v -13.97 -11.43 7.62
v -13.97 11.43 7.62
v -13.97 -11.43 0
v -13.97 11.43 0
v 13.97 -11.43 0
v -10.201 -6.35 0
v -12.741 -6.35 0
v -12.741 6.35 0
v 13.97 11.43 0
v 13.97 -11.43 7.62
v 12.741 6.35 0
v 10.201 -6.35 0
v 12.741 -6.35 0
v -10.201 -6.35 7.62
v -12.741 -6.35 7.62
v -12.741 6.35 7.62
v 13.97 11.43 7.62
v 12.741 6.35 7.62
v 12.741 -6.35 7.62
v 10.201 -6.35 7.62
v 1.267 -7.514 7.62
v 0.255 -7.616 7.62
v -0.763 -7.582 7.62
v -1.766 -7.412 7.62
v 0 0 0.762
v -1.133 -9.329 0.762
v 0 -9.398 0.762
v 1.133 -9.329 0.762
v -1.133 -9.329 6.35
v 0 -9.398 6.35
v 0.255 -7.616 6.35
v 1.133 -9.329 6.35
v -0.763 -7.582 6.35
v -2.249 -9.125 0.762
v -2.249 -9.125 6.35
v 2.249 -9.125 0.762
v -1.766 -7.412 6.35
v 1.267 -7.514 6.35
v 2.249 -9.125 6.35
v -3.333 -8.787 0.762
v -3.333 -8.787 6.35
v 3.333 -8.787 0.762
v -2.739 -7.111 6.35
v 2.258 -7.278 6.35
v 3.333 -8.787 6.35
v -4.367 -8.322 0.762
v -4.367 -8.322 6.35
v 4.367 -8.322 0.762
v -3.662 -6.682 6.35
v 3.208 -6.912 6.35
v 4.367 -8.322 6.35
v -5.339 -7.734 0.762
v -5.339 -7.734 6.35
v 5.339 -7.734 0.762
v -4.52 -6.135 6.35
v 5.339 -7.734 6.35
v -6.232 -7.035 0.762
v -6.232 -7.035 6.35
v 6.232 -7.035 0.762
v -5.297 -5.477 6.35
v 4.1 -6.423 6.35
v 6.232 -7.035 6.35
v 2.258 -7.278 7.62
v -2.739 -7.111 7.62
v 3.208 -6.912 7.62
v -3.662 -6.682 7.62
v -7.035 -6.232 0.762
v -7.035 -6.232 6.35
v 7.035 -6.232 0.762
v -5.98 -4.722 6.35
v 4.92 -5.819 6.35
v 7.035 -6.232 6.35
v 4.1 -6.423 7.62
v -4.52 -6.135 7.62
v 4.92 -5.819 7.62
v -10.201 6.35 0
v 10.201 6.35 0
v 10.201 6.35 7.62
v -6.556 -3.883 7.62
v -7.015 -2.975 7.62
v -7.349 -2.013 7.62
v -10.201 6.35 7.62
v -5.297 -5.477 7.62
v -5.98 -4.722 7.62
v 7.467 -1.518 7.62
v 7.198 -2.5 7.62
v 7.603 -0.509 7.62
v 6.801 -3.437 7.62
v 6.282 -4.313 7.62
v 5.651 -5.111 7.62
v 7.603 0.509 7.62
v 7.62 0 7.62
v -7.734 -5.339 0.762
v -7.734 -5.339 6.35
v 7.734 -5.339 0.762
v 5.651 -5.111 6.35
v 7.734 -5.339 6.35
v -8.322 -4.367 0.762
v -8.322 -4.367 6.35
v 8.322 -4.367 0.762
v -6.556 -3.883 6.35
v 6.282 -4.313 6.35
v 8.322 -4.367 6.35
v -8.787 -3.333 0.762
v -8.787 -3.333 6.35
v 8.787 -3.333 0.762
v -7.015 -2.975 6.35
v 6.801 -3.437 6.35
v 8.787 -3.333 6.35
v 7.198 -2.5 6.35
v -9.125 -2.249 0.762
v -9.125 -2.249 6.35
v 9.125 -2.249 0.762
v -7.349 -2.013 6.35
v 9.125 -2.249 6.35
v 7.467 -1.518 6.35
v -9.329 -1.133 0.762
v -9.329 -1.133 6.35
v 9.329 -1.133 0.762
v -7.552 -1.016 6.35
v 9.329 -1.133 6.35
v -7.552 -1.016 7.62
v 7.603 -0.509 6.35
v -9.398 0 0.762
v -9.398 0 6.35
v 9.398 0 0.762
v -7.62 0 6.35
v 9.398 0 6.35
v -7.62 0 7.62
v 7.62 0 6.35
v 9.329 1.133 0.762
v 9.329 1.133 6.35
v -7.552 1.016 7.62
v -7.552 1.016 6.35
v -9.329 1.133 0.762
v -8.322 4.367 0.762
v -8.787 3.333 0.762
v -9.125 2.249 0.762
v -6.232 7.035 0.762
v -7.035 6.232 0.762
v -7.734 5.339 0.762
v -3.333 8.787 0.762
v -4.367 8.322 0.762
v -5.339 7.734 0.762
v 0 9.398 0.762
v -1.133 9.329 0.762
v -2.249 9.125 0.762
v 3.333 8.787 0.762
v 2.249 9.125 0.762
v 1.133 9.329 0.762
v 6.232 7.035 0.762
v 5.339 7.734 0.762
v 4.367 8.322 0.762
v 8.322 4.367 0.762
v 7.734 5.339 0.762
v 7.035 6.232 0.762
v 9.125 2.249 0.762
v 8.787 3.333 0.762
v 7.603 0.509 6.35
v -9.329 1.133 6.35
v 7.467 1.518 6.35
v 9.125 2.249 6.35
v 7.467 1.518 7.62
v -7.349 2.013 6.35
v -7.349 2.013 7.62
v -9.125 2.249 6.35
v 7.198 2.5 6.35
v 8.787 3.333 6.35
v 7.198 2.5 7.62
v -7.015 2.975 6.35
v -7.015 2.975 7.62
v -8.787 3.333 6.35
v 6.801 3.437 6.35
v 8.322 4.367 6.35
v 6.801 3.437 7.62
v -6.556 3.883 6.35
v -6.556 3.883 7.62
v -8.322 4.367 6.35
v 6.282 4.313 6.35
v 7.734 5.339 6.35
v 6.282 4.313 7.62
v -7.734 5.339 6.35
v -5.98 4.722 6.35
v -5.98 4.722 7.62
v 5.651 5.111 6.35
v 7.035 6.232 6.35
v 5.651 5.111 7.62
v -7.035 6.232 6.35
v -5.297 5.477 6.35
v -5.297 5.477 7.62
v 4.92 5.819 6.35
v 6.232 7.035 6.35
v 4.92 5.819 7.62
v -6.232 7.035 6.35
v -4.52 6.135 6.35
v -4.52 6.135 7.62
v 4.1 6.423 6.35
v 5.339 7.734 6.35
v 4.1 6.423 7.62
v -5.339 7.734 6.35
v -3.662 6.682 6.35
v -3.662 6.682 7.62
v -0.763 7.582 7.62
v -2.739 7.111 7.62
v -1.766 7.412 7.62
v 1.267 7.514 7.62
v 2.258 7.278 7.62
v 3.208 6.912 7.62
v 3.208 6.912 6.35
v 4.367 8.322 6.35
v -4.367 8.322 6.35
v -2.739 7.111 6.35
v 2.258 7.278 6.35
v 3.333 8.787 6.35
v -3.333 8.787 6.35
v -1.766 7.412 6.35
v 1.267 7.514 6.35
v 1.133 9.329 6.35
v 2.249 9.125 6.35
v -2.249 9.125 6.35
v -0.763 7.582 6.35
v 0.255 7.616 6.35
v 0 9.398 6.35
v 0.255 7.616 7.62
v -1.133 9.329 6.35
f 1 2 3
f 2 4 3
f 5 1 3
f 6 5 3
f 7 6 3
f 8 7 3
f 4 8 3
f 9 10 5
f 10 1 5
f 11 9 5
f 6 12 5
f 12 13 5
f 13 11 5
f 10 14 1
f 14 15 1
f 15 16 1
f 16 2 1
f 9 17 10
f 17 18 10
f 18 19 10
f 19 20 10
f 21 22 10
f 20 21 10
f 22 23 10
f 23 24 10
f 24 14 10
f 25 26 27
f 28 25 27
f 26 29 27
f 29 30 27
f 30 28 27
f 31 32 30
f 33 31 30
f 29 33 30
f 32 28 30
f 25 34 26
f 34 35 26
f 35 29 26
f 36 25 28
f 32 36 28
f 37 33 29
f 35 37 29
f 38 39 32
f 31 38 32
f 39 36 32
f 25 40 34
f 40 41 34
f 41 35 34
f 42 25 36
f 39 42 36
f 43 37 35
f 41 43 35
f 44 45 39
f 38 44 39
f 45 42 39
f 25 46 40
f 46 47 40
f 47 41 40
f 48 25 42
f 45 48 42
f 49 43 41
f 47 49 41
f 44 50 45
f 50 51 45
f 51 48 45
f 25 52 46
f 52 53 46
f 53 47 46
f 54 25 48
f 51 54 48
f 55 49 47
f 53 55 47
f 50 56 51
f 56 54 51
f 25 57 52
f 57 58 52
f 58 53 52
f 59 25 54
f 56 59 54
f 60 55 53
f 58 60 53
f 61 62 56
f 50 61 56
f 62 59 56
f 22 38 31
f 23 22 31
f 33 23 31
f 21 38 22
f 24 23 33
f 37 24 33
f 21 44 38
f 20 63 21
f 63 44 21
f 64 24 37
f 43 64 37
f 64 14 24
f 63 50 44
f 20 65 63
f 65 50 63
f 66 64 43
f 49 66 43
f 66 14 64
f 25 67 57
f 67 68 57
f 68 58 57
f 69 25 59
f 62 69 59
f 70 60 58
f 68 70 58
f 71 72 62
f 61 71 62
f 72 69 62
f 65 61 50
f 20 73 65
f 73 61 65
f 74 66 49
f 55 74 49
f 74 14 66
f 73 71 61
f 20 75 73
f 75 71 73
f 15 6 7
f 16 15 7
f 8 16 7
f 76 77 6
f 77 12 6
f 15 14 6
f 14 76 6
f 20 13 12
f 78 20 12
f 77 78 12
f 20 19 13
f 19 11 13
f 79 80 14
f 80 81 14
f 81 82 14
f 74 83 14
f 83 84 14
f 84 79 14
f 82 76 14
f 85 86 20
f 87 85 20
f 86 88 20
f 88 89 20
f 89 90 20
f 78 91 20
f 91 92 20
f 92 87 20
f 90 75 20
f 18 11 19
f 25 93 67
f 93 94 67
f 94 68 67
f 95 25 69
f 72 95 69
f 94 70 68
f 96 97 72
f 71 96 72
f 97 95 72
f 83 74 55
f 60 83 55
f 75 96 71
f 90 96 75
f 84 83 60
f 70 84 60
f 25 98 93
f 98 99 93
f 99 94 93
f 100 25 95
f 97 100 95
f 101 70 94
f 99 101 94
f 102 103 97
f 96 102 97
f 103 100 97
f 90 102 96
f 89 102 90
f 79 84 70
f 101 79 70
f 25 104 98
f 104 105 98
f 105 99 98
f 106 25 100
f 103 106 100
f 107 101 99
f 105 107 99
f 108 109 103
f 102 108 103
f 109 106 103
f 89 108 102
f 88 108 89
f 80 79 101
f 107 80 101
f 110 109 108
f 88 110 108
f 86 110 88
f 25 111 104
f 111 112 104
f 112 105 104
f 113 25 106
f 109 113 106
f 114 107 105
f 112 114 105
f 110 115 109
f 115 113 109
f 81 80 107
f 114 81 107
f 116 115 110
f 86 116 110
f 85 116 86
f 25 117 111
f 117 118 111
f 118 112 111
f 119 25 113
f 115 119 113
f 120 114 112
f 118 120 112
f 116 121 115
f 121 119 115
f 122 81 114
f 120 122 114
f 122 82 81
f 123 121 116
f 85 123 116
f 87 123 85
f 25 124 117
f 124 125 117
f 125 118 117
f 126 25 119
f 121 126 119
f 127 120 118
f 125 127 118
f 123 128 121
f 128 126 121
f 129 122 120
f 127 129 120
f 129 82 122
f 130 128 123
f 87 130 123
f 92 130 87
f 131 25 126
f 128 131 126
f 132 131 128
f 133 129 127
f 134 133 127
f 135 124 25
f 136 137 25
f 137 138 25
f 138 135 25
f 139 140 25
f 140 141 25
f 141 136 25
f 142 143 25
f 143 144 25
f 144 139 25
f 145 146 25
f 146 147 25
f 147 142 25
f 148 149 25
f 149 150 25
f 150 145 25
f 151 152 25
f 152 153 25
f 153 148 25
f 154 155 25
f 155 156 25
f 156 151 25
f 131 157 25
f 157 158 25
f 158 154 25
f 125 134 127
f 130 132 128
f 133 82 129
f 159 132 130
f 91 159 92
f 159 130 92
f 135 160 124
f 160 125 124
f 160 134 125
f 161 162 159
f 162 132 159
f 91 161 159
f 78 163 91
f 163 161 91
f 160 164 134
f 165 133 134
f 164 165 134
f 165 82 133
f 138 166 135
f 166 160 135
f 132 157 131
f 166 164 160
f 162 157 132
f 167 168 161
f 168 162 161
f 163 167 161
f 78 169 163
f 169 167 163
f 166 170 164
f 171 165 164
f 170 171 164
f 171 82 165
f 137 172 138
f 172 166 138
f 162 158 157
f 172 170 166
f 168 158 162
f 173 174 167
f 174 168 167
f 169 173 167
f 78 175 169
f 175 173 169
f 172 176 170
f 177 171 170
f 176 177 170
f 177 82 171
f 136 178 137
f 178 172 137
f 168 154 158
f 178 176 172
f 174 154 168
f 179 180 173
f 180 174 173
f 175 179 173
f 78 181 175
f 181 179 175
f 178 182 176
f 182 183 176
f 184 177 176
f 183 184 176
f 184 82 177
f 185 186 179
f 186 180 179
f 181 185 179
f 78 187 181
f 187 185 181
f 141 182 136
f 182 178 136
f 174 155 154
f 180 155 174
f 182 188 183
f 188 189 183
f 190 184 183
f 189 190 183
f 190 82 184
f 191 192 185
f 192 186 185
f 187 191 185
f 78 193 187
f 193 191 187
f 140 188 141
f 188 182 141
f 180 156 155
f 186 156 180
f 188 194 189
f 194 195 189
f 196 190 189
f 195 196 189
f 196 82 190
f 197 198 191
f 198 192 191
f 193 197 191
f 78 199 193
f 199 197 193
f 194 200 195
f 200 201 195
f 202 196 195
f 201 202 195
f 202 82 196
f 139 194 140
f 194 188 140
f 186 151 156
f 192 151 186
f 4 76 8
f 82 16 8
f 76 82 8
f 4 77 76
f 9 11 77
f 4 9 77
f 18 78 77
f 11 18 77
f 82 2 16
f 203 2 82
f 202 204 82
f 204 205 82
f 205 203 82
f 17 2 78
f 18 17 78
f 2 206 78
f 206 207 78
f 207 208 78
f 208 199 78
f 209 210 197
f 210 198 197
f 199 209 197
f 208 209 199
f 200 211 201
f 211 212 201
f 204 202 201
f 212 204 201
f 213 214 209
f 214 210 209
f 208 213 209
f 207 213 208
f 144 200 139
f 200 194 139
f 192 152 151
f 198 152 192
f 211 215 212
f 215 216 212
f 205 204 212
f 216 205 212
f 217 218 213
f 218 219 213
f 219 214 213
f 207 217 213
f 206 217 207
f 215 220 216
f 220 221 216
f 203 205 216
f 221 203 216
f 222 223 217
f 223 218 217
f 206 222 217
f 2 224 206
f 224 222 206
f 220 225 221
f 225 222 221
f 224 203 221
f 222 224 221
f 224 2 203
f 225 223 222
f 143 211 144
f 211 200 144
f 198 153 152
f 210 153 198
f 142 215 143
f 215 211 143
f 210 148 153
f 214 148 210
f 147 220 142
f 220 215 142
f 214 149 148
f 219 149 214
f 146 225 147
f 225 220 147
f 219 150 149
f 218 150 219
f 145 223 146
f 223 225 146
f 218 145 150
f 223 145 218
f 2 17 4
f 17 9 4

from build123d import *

# Parameters (mm, degrees)
SKETCH1_W           = 27.94
SKETCH1_H           = 22.86
BOSS_EXTRUDE1_DEPTH = 6.35
SKETCH2_R           = 9.398
CUT_EXTRUDE1_DEPTH  = 5.588
SKETCH3_W           = 27.94
SKETCH3_H           = 22.86
SKETCH3_R           = 7.62
BOSS_EXTRUDE2_DEPTH = 1.27
SKETCH9_W           = 2.54
SKETCH9_H           = 12.7
CUT_EXTRUDE3_DEPTH  = 7.62


with BuildPart() as part:
    # Sketch1 → Boss-Extrude1 (new body)
    with BuildSketch(Plane.XY):
        Rectangle(SKETCH1_W, SKETCH1_H)
    extrude(amount=BOSS_EXTRUDE1_DEPTH)

    # Sketch2 → Cut-Extrude1 (cut)
    with BuildSketch(Plane.XY.offset(6.35)):
        Circle(SKETCH2_R)
    extrude(amount=-CUT_EXTRUDE1_DEPTH, mode=Mode.SUBTRACT)

    # Sketch3 → Boss-Extrude2 (add)
    with BuildSketch(Plane.XY.offset(6.35)):
        Rectangle(SKETCH3_W, SKETCH3_H)
        Circle(SKETCH3_R, mode=Mode.SUBTRACT)
    extrude(amount=BOSS_EXTRUDE2_DEPTH)

    # Sketch9 → Cut-Extrude3 (cut)
    with BuildSketch(Plane.XY.offset(7.62)):
        with Locations((-11.47066929, 0)):
            Rectangle(SKETCH9_W, SKETCH9_H)
        with Locations((11.47066929, 0)):
            Rectangle(SKETCH9_W, SKETCH9_H)
    extrude(amount=-CUT_EXTRUDE3_DEPTH, mode=Mode.SUBTRACT)


solid = part.part
